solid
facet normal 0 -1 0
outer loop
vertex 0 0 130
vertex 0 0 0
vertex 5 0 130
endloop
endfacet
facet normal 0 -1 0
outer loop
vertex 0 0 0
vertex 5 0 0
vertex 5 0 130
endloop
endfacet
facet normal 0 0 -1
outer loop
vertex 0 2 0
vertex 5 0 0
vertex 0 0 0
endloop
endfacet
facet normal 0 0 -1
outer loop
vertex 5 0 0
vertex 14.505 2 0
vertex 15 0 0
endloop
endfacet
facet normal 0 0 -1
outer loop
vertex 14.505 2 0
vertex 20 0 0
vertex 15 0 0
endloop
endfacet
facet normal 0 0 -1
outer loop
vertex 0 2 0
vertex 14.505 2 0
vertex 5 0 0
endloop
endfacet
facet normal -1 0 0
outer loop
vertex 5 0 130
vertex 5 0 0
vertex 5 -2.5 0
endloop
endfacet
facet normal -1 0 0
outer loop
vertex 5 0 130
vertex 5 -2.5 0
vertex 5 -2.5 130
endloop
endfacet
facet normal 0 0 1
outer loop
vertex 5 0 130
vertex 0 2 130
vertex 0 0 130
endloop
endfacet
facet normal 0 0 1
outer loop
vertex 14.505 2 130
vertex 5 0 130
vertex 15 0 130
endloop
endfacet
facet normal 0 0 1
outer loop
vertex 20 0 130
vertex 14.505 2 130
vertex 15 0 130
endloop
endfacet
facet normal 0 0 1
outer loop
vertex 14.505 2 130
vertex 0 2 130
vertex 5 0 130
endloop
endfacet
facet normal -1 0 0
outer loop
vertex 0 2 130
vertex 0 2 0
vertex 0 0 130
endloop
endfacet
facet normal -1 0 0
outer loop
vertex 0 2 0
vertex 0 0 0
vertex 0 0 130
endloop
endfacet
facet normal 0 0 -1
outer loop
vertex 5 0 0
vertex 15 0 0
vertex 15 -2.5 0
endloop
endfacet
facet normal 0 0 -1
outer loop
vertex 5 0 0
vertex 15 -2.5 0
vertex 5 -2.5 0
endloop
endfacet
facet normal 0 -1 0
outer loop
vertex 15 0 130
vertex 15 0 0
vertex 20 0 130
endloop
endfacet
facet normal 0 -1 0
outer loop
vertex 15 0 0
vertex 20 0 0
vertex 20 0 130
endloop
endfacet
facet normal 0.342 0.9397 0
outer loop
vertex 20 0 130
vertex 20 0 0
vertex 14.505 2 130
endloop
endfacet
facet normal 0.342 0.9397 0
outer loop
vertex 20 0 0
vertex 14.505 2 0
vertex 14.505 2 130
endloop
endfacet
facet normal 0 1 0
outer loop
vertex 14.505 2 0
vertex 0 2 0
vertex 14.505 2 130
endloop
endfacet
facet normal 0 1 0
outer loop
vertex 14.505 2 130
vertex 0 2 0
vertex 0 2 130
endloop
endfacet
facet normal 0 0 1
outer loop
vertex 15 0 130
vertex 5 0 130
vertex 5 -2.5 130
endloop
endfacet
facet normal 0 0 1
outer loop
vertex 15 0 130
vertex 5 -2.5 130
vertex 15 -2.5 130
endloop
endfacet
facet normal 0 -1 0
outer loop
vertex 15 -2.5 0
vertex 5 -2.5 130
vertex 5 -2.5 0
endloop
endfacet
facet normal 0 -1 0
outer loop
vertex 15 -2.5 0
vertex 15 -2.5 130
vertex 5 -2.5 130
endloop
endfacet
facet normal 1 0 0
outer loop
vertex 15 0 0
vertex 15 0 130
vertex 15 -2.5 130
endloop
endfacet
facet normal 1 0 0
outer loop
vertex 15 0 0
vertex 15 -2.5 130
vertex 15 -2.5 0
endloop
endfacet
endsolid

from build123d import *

# Parameters (mm, degrees)
PAD_DEPTH    = 130
SKETCH001_W  = 10
SKETCH001_H  = 130
PAD001_DEPTH = 2.5


with BuildPart() as part:
    # Sketch → Pad (new body)
    with BuildSketch(Plane.XY):
        Polygon((0, 0), (20, 0), (14.505045, 2), (0, 2), align=None)
    extrude(amount=PAD_DEPTH)

    # Sketch001 (on Face1 of Pad) → Pad001 (join)
    with BuildSketch(Plane.XZ):
        with Locations((10, 65)):
            Rectangle(SKETCH001_W, SKETCH001_H)
    extrude(amount=PAD001_DEPTH)


solid = part.part
